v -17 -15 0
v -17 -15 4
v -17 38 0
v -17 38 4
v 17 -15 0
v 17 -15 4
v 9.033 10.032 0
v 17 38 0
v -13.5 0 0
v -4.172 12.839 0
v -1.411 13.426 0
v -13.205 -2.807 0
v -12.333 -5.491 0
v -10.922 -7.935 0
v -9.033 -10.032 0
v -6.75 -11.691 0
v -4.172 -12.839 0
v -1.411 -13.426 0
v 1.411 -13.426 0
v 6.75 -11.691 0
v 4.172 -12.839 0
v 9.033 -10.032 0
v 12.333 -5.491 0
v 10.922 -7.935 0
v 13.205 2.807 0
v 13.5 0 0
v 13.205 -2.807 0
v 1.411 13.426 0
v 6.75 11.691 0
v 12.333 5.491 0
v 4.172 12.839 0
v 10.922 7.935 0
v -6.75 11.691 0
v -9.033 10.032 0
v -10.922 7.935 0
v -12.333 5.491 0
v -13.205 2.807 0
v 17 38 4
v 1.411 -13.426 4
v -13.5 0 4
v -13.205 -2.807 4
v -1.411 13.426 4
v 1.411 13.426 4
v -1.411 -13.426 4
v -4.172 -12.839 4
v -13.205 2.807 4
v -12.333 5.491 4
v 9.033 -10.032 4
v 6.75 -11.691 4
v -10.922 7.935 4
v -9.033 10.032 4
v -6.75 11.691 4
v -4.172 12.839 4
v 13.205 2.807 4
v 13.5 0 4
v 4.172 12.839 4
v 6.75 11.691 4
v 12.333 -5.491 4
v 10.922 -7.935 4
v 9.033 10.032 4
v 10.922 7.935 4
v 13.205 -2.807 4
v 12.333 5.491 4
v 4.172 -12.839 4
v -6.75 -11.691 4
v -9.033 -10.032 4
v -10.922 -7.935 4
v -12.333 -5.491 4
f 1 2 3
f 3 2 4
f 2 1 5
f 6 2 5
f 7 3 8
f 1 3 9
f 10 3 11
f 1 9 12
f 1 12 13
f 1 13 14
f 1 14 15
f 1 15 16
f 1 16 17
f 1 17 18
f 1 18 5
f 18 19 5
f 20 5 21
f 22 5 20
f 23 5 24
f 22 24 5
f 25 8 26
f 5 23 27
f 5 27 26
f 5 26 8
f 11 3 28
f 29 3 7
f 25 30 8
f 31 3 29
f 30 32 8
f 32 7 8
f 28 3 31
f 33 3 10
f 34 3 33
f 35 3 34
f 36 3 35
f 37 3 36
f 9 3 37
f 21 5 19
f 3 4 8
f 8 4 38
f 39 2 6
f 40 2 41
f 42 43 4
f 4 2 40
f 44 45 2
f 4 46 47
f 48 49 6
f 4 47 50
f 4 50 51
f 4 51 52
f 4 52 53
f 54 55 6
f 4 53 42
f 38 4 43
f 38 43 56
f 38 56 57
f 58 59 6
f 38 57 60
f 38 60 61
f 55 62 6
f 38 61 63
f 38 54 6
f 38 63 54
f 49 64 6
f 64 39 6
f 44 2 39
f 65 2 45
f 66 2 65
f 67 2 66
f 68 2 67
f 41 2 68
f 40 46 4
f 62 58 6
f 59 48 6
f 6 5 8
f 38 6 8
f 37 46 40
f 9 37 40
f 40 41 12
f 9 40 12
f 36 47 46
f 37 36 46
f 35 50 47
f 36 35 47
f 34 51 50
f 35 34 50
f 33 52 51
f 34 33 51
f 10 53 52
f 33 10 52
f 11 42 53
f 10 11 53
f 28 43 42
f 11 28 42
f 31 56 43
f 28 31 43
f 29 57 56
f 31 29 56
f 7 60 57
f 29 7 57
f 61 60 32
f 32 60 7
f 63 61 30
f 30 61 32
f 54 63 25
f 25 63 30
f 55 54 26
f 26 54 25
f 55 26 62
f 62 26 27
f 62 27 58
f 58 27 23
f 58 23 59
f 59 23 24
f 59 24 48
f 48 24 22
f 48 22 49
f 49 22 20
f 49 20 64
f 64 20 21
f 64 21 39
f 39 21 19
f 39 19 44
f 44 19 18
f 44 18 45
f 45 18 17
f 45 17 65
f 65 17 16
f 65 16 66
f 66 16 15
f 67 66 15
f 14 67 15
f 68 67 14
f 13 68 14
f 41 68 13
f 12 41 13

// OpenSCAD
pataH = 4;
pataRadio = 13.5;

difference()
{
  translate([-17,-15,0])
  cube([34,53,pataH]);

  translate([0,0,-0.1])
  cylinder(r=pataRadio,pataH+1);
 
}
